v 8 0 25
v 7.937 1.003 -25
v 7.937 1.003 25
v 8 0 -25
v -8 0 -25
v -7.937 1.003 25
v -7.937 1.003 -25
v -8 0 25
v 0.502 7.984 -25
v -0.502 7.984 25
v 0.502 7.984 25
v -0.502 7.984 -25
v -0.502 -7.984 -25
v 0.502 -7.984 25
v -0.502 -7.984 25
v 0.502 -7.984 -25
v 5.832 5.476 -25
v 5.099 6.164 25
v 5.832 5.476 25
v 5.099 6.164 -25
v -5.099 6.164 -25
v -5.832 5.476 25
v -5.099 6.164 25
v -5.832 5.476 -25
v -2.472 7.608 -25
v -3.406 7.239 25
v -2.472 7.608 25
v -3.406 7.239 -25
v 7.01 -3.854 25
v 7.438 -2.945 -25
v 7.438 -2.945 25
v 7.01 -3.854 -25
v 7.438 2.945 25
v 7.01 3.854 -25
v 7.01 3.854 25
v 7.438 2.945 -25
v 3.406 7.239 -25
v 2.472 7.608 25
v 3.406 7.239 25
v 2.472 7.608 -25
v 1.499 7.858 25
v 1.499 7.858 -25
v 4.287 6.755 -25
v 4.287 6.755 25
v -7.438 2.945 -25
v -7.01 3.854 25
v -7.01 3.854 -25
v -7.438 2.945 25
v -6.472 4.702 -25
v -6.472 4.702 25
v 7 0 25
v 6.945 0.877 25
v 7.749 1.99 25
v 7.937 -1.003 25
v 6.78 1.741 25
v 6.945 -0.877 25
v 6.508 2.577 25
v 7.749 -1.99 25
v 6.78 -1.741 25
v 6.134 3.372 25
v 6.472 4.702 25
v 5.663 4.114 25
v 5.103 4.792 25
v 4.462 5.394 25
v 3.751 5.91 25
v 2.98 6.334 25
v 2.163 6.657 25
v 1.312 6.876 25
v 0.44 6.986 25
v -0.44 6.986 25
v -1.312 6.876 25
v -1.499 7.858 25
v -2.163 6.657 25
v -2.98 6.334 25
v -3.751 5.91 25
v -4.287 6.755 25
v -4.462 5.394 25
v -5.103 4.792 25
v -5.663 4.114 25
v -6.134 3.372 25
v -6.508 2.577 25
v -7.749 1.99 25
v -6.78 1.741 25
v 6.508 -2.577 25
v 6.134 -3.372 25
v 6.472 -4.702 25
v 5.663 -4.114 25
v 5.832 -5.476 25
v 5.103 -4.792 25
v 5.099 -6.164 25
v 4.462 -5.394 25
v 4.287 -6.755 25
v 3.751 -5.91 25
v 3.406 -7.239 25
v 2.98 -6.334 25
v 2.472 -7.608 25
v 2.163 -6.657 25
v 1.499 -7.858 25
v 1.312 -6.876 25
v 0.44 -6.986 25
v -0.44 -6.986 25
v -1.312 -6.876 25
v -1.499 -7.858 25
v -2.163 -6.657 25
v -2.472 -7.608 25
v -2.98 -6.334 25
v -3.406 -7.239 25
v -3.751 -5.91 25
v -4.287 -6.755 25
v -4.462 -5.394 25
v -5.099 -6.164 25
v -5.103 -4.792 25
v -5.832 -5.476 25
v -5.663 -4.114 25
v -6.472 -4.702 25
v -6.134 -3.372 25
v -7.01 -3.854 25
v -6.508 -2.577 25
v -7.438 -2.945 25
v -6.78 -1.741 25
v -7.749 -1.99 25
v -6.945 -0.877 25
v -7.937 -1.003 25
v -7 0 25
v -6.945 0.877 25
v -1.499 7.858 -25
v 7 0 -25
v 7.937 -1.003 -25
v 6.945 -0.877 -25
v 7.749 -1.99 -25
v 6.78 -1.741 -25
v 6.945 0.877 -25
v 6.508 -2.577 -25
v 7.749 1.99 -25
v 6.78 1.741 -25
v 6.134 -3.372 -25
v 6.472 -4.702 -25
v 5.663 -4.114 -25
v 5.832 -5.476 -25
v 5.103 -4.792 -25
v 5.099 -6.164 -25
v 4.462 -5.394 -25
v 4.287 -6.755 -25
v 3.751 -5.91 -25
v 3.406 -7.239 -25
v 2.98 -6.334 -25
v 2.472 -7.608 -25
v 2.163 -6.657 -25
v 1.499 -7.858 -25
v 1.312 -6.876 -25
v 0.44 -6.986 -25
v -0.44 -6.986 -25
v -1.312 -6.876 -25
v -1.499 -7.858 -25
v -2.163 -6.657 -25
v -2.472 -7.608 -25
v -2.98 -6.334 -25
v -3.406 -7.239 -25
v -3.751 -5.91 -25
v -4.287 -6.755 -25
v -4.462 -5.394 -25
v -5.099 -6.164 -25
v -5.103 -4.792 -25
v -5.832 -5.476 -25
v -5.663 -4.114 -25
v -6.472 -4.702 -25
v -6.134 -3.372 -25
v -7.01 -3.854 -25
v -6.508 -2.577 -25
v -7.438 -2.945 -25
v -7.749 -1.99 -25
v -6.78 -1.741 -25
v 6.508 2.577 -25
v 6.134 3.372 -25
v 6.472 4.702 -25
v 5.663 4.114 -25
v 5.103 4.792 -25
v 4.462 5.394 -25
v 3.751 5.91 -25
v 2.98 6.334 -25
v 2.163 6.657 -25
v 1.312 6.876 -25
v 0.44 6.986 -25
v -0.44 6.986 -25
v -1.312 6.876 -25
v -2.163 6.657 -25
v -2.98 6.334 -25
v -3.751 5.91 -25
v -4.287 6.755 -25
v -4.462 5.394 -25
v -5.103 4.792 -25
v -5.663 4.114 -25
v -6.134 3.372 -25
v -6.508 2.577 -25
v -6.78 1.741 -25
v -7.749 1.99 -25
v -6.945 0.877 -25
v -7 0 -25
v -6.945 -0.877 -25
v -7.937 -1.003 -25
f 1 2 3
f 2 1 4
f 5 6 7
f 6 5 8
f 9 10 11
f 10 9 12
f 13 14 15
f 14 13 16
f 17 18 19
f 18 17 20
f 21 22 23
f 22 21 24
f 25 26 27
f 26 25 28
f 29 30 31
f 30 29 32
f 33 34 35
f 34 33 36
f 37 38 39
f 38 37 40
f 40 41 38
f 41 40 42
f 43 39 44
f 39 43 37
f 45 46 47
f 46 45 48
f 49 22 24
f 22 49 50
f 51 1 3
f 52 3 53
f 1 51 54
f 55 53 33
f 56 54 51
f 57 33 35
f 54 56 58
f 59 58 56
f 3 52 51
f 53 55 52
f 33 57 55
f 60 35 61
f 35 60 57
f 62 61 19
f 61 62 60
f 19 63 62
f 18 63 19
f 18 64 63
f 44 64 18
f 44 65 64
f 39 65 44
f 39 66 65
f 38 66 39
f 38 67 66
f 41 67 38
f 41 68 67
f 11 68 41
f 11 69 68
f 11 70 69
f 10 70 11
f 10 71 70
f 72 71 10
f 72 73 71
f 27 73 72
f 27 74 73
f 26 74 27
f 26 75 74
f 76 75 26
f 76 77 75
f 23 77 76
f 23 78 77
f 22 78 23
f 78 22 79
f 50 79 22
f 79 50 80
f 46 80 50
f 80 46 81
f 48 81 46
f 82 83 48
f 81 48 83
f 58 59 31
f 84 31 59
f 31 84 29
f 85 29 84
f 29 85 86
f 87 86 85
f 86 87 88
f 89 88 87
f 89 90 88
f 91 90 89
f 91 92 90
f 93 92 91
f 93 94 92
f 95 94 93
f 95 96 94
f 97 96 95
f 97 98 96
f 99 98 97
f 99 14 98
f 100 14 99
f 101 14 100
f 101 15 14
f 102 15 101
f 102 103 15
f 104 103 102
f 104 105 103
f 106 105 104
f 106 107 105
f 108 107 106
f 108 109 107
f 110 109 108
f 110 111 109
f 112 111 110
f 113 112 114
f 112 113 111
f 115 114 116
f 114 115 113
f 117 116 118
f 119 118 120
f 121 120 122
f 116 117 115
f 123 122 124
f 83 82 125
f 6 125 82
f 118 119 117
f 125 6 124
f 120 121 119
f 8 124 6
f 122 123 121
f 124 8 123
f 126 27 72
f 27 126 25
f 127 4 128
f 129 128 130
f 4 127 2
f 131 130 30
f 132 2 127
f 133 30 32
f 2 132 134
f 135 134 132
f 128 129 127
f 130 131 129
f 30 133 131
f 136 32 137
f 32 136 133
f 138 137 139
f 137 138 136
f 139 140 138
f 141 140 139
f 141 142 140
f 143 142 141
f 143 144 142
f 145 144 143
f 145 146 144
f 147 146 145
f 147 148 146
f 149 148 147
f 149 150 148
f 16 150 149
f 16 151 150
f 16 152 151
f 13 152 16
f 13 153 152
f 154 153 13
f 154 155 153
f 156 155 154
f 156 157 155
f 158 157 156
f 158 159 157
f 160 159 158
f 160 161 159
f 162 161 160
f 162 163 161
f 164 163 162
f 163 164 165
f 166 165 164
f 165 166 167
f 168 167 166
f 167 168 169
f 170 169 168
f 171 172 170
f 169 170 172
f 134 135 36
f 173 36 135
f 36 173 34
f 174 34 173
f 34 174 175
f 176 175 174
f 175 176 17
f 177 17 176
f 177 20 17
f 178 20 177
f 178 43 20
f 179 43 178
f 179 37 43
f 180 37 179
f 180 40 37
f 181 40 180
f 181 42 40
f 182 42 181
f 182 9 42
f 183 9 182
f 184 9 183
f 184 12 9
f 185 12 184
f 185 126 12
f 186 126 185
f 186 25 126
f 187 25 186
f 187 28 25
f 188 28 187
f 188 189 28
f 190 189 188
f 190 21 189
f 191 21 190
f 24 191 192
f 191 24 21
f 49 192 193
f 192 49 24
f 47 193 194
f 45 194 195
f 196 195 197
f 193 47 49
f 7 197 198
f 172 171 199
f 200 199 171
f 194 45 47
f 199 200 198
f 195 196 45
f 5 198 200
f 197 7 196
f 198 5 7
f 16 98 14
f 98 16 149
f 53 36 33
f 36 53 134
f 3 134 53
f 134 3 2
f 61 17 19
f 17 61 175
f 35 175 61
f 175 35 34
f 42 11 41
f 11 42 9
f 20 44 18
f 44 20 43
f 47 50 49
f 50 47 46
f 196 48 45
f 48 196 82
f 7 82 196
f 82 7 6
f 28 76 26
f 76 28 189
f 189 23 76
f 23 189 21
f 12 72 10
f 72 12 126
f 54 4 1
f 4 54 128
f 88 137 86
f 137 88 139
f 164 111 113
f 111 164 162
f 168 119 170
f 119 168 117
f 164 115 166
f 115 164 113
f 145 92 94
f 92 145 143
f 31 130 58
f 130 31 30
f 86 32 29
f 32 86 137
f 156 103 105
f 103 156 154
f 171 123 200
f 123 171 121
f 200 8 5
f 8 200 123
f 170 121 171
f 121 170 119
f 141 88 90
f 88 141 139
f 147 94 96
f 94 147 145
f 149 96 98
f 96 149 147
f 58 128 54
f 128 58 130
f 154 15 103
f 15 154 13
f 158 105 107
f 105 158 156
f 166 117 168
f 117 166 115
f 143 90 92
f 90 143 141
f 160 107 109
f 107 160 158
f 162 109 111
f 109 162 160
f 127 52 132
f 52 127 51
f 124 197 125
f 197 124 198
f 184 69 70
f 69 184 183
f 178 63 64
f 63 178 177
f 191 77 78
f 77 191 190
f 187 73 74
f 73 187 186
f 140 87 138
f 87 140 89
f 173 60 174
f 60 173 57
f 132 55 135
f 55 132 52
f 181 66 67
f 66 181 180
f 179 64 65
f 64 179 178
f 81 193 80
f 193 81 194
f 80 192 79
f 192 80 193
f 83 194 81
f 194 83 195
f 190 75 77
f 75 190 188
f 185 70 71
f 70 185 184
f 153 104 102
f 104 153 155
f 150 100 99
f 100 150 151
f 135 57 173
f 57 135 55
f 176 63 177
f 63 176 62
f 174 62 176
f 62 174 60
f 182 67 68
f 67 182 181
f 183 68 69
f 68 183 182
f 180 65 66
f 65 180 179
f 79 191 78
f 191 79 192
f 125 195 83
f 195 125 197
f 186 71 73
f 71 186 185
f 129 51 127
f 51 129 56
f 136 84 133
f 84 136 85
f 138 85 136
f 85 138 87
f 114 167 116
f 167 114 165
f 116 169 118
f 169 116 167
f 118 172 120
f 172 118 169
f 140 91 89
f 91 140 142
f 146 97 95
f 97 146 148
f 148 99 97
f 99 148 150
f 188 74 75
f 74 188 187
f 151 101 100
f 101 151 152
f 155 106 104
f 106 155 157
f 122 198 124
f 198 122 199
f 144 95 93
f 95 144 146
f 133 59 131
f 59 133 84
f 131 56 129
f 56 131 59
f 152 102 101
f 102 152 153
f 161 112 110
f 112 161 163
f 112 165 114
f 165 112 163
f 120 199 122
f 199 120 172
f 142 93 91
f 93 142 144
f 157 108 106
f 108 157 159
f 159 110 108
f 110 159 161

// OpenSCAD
$fn = 50;


difference() {
	union() {
		translate(v = [0, 0, -25.0000000000]) {
			cylinder(h = 50, r = 8.0000000000);
		}
	}
	union() {
		translate(v = [0, 0, -100.0000000000]) {
			cylinder(h = 200, r = 7);
		}
	}
}
